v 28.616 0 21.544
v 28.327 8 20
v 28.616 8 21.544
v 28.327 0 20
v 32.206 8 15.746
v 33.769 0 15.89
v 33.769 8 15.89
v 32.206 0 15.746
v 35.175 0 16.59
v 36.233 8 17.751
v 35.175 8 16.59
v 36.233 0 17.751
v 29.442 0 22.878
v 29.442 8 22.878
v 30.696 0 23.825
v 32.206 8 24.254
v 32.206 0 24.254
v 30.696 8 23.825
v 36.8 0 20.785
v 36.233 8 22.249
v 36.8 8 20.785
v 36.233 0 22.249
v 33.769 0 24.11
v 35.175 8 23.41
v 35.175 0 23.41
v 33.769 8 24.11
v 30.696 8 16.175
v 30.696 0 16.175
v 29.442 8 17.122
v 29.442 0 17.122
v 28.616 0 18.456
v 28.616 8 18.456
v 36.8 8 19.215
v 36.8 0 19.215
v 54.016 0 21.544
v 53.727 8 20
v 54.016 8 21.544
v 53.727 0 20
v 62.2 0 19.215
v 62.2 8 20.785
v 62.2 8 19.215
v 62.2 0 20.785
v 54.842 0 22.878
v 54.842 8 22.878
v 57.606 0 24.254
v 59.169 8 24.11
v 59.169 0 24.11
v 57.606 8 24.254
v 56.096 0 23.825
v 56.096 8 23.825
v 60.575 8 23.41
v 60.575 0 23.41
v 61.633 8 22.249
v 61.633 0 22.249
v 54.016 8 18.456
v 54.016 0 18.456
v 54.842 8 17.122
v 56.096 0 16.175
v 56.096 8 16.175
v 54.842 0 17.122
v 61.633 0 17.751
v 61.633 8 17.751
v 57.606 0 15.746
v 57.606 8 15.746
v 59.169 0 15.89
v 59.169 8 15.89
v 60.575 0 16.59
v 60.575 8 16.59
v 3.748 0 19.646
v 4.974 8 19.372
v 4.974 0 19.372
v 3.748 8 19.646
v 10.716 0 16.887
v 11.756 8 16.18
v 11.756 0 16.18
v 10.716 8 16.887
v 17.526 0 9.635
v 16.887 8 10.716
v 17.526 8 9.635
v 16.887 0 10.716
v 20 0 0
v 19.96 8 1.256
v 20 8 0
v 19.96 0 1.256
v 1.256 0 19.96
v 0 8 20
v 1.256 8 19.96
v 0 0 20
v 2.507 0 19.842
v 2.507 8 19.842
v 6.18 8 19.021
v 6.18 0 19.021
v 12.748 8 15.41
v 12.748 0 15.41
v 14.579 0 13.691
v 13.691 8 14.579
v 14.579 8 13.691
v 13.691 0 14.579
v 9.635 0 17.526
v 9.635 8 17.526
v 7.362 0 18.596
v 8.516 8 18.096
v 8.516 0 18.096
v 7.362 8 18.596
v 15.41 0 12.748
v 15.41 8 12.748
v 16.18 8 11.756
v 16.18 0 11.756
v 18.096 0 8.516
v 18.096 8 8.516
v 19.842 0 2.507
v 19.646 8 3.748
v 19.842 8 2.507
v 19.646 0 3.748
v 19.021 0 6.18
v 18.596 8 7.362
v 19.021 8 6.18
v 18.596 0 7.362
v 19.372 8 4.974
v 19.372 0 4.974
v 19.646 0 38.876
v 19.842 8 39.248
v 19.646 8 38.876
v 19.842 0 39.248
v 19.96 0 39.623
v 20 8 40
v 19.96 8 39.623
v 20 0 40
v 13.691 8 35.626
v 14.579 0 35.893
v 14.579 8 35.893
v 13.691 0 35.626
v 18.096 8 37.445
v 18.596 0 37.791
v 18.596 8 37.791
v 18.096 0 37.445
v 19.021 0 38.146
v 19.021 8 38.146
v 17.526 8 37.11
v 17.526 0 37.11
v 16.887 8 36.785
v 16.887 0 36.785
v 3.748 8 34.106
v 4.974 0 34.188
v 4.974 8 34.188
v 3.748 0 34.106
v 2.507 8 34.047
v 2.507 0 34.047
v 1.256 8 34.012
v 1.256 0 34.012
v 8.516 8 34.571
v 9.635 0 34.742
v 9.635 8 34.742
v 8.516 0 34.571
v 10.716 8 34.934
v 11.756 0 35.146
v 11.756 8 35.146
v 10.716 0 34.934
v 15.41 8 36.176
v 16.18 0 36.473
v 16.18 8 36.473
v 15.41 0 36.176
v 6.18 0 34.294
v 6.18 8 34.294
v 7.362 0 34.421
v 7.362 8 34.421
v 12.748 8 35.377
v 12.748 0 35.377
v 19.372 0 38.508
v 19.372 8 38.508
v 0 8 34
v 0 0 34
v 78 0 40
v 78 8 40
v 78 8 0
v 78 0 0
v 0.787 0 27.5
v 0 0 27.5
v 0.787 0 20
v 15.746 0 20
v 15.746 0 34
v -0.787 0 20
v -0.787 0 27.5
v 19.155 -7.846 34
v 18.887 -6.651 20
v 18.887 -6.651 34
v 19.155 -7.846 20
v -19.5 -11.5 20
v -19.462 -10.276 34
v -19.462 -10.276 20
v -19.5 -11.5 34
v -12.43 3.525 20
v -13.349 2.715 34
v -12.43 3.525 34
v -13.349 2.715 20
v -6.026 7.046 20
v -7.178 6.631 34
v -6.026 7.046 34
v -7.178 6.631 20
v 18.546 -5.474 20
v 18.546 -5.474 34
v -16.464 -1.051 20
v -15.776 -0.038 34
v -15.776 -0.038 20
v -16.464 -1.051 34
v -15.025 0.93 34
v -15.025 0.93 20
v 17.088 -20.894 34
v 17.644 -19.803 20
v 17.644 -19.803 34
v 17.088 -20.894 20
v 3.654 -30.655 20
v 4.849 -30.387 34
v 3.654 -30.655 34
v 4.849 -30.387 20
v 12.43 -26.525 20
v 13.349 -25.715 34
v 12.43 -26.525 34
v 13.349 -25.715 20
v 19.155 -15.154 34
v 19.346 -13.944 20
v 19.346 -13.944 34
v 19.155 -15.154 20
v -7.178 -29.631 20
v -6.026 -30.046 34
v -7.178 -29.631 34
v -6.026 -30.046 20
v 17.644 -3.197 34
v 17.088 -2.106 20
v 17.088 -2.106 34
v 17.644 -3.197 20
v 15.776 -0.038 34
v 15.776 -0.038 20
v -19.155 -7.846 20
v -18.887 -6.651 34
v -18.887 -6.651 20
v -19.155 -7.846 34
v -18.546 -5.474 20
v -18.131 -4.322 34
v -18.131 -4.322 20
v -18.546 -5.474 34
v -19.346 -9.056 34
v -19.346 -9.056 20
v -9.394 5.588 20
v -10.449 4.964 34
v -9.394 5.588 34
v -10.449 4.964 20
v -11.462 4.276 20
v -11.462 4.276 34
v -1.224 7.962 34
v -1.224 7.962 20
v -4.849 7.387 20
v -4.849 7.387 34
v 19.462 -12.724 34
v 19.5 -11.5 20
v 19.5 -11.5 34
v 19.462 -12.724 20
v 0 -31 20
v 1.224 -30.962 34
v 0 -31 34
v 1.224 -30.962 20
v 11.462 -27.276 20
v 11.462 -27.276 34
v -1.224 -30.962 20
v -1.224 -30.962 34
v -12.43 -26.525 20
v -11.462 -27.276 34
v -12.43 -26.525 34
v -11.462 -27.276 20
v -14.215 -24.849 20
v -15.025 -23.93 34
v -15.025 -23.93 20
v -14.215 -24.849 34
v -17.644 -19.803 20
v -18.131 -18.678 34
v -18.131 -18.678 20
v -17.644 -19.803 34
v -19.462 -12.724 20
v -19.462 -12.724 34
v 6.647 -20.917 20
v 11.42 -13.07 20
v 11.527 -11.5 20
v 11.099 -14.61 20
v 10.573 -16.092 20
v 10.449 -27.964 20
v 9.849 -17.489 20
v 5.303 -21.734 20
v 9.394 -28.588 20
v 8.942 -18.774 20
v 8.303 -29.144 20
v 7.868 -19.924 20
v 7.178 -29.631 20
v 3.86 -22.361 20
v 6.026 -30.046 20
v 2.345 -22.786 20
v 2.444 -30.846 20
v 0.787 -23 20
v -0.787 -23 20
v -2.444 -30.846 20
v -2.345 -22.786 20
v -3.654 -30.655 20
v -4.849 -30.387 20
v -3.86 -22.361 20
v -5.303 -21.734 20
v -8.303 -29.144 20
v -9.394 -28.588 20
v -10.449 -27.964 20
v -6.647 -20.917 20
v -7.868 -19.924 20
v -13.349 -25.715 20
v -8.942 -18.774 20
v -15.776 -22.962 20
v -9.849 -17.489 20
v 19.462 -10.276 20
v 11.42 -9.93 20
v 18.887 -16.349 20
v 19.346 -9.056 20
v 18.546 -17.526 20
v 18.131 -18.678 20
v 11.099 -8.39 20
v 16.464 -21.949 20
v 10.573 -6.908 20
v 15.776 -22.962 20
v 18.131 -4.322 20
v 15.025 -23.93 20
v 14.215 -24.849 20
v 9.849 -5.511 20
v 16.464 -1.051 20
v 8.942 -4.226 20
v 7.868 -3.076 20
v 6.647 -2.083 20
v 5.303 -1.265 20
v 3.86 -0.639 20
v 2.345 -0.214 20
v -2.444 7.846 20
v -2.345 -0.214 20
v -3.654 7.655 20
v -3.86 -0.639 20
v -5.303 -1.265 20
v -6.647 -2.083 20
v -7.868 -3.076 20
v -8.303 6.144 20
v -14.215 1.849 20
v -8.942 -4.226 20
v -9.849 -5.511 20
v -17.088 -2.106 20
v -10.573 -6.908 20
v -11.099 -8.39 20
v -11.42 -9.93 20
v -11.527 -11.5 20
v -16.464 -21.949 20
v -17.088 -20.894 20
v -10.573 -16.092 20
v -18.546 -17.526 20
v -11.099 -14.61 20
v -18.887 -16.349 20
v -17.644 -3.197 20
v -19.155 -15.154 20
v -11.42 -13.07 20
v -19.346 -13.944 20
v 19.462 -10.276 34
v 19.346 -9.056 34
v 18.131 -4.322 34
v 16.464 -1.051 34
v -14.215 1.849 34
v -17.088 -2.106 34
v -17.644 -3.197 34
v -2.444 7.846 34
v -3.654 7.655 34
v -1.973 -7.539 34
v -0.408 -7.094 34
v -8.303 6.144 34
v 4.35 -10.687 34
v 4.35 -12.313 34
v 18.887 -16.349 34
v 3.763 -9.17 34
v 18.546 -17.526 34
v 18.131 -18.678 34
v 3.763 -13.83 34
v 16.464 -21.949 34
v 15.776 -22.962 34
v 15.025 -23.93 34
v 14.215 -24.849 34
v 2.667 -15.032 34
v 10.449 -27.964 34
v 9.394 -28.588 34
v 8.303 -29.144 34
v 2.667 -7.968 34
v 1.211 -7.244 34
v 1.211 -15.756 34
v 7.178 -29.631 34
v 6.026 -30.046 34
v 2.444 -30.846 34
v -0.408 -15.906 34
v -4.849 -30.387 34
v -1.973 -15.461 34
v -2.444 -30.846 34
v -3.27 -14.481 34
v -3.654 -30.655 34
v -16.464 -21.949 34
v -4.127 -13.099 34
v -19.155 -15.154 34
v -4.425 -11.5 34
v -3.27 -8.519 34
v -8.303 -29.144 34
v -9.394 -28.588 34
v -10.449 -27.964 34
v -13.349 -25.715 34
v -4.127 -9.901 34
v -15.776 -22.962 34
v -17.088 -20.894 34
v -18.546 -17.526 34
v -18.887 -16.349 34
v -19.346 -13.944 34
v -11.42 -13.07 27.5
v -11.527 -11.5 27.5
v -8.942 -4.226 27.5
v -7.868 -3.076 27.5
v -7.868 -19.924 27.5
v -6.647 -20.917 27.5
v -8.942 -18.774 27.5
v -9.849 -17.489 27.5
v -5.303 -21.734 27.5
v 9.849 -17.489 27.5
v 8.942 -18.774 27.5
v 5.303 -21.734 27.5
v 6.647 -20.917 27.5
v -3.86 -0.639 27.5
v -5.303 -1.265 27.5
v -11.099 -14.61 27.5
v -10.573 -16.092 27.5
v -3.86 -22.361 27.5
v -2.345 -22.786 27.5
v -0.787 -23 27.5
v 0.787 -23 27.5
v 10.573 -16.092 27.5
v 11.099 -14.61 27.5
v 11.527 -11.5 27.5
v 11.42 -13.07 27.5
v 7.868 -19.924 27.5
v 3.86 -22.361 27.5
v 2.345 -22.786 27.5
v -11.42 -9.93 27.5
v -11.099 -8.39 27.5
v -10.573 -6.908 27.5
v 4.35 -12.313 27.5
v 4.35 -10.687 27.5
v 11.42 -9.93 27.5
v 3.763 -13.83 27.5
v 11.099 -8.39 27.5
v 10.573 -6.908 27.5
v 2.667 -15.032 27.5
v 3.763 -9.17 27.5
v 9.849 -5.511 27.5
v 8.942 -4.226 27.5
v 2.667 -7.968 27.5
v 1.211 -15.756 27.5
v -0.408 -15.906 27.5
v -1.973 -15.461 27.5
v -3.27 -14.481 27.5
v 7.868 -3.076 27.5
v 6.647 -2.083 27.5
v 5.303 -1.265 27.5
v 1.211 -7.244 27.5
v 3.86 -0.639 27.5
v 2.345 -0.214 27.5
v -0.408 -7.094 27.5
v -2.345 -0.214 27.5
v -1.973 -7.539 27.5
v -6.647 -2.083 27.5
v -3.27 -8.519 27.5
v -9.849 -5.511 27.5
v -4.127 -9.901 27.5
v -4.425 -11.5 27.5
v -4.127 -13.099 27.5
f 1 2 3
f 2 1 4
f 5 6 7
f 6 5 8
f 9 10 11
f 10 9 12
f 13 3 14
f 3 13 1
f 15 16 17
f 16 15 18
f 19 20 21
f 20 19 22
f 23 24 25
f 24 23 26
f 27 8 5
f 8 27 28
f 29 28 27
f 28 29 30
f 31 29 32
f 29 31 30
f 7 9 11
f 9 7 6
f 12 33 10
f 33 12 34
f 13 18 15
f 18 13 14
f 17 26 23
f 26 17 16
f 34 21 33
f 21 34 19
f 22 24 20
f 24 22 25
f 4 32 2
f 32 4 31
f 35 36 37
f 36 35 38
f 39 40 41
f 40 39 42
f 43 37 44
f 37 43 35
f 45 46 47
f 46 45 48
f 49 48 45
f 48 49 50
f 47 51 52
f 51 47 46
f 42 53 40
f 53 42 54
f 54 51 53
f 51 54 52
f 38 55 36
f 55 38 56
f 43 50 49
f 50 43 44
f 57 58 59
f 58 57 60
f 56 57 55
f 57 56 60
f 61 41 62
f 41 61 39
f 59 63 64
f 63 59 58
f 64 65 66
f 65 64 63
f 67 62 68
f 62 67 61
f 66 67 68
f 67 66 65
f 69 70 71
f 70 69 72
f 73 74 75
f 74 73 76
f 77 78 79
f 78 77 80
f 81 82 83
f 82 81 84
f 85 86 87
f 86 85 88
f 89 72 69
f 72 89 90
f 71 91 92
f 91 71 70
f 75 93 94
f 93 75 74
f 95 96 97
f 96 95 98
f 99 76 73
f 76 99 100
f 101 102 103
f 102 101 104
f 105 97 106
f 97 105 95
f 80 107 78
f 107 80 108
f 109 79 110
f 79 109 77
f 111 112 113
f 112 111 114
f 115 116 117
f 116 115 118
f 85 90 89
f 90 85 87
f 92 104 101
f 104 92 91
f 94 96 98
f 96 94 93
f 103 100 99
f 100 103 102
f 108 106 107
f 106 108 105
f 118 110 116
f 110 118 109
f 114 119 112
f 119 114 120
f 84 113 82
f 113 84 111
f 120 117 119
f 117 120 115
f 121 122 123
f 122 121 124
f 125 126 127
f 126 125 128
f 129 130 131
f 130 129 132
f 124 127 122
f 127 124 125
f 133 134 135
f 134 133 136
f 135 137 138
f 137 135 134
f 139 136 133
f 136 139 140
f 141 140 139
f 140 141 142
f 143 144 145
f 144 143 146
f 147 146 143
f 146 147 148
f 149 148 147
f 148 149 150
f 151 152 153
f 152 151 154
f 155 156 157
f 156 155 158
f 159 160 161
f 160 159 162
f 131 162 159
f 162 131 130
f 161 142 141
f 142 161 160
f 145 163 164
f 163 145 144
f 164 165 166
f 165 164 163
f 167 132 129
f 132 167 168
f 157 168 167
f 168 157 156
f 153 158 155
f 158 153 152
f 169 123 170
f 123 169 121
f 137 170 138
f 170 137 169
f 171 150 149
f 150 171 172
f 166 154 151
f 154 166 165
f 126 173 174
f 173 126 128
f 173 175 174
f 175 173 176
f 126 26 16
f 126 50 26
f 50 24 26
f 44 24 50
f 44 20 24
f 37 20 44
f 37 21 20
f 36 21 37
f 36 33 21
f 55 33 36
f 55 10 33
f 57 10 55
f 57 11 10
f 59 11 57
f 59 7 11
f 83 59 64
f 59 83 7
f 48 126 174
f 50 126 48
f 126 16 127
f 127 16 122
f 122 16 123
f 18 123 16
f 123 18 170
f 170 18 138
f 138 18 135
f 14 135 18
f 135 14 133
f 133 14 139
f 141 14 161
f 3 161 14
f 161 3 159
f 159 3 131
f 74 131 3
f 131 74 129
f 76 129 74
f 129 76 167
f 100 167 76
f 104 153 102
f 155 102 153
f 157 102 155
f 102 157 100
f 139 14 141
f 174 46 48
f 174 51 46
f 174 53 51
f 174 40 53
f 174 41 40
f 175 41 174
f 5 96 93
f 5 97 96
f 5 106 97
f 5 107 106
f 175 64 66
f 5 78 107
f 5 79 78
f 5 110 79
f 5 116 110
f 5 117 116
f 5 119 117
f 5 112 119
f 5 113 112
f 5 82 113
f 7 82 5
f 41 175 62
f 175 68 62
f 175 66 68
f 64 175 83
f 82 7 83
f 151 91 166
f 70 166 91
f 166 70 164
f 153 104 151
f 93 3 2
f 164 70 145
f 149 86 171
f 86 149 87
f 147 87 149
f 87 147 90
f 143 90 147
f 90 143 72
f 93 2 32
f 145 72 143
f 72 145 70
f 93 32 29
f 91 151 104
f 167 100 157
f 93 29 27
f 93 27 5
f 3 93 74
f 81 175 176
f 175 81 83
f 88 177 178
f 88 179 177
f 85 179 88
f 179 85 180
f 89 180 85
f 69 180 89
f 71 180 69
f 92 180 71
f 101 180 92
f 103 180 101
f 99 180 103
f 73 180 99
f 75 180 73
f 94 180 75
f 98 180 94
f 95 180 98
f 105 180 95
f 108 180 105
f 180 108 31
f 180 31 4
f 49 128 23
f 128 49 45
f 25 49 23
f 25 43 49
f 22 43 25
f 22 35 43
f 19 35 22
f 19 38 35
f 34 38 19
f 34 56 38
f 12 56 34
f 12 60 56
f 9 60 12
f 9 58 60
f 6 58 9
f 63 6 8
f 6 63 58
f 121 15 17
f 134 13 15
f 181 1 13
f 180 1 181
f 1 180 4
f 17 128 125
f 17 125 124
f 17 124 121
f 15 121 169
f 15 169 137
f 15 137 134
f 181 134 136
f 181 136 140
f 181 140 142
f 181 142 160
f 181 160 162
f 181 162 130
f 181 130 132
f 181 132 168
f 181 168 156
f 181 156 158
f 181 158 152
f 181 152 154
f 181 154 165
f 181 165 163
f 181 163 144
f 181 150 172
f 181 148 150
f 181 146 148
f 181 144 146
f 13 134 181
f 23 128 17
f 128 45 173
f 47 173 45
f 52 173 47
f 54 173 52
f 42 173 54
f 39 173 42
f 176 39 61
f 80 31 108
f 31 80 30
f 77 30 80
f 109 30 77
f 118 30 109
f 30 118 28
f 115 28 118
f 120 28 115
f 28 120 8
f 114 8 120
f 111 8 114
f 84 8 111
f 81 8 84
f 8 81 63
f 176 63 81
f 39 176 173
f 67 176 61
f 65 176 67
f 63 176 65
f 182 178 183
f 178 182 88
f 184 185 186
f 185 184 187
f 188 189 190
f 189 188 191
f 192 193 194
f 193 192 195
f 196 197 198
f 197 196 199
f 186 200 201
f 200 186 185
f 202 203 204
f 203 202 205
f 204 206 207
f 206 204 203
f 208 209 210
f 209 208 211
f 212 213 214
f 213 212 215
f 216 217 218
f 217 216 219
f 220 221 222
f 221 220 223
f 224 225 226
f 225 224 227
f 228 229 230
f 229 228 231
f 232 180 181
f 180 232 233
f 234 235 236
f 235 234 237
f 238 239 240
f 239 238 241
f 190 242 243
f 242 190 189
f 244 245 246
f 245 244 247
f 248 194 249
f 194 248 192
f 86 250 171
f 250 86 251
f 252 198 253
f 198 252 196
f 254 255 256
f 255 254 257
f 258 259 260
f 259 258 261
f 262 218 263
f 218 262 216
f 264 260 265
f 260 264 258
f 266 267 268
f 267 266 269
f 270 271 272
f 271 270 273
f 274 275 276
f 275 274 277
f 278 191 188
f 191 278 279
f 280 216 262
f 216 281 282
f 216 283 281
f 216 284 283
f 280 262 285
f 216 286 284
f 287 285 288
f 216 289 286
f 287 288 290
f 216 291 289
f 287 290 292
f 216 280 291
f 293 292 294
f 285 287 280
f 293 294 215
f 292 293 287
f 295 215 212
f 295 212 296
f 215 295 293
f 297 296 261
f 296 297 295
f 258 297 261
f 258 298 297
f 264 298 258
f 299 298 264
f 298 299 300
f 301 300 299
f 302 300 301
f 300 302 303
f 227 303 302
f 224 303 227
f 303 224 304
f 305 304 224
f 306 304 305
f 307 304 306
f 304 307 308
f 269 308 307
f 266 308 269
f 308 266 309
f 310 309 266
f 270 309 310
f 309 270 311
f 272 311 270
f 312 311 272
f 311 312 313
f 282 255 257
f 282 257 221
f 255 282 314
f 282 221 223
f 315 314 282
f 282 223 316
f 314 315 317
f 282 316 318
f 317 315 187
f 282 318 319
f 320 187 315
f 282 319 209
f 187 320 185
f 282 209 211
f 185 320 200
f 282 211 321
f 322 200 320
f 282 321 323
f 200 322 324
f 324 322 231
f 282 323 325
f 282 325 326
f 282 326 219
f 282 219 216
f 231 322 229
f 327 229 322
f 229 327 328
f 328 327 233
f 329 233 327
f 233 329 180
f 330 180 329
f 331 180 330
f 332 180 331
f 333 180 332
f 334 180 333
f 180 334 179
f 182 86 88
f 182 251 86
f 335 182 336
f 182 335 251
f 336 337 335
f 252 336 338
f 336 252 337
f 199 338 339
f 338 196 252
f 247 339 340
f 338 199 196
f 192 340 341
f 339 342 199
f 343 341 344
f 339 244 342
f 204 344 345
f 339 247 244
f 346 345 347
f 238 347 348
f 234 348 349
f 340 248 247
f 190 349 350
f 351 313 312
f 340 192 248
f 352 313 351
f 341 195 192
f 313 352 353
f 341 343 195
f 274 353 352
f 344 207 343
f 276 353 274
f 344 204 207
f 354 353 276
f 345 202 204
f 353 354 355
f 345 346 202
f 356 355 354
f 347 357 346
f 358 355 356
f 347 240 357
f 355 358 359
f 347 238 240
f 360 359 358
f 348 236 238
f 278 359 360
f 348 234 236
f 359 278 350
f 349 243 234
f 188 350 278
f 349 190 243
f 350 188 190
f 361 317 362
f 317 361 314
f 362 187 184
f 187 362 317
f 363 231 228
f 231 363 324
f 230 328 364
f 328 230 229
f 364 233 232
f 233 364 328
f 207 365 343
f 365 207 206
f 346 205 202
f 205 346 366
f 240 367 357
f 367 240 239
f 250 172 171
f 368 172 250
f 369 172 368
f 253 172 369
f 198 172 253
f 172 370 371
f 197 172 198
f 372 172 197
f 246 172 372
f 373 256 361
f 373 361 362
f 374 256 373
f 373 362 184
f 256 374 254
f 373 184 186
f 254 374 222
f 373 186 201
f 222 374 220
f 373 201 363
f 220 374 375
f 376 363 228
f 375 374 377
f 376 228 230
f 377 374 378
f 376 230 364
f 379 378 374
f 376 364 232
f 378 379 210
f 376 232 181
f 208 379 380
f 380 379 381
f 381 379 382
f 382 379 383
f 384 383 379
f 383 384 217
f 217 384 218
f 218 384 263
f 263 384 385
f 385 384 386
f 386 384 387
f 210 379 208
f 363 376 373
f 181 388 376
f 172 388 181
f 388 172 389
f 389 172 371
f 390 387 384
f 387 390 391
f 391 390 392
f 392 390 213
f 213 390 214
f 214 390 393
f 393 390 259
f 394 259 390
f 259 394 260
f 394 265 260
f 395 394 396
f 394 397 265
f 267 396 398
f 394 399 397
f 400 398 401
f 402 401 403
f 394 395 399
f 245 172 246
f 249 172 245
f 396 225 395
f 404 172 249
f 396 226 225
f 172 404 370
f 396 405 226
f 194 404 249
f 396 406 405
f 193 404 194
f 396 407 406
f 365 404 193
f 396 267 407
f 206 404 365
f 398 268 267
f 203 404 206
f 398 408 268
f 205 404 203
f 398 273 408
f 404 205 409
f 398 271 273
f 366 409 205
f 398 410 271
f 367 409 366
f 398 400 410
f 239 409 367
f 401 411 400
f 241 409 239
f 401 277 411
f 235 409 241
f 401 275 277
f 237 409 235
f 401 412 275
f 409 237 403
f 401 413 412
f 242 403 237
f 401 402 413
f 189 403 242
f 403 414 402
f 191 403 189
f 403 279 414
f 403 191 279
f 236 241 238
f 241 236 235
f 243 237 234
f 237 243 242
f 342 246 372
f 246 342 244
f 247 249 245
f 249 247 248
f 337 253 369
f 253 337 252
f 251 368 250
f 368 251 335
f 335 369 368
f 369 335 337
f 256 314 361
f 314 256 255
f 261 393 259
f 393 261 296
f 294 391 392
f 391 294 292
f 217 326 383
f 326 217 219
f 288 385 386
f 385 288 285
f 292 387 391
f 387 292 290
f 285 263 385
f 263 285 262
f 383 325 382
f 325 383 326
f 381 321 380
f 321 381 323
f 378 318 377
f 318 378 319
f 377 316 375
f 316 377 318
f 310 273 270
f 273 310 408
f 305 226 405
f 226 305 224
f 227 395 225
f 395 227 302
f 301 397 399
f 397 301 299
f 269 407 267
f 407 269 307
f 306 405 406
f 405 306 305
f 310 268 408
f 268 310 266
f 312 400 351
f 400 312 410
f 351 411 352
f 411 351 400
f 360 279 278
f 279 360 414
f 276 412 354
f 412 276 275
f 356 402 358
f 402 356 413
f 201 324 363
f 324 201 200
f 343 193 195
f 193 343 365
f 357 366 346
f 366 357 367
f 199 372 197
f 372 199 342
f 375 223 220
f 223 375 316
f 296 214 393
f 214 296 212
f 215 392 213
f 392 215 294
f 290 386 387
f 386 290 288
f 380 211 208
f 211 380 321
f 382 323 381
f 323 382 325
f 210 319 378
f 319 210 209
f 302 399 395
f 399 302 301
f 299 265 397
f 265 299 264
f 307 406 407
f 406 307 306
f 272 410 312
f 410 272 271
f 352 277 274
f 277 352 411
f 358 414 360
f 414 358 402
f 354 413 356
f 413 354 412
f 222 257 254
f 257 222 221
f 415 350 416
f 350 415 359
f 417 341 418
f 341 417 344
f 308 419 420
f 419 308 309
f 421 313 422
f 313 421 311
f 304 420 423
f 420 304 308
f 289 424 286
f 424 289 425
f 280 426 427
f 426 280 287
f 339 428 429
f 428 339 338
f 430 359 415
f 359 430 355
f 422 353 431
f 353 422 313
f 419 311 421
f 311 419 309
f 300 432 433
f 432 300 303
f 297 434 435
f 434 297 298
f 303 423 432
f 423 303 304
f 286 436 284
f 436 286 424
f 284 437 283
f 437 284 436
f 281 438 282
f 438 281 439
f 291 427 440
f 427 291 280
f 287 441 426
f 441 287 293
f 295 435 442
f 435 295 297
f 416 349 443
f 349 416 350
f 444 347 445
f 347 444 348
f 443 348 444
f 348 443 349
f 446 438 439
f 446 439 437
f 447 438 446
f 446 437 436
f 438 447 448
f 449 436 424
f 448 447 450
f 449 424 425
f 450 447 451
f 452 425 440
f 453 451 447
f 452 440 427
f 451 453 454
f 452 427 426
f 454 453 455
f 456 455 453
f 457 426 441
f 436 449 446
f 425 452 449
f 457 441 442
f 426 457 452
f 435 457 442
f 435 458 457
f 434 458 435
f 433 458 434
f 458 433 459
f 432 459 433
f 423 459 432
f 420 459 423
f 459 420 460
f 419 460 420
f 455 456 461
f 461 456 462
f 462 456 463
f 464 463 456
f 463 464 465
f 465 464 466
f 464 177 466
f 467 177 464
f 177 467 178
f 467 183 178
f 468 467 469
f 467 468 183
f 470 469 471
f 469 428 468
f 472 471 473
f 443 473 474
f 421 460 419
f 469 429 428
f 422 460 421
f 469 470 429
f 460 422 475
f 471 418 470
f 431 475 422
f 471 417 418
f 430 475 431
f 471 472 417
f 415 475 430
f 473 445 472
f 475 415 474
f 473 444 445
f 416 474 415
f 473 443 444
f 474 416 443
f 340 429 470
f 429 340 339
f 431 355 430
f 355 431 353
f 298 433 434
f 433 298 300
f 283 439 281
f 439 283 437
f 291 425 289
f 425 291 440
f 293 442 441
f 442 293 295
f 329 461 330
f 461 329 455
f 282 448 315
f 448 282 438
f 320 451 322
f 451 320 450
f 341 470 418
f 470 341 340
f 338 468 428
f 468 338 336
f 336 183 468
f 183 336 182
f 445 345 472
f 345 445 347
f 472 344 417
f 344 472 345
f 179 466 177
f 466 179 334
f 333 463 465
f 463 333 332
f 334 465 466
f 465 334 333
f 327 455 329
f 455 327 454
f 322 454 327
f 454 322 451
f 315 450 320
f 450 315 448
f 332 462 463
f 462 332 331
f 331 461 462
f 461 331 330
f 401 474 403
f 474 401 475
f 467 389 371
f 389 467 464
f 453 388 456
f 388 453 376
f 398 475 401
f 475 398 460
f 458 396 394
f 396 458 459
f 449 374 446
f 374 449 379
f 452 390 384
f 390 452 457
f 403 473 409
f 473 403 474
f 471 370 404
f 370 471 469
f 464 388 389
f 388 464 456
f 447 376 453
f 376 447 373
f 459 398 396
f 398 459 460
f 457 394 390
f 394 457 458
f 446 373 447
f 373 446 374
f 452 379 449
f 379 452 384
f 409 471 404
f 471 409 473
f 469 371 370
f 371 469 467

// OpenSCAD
use <MCAD/polyholes.scad>;



$fn = 100;

thick = 8;

extrusion_w = 40.0; //mm
extrusion_h = 40.0; //mm

frame_mount_bolt_r  =  4.2;    //mm
frame_mount_pitch   = 25.4;    //mm

bearing_o_d   =         22.0;    //mm
bearing_i_d   =          8.0;    //mm
bearing_h     =          7.0;    //mm
bearing_o_tol =          1.0;    //mm

bearing_mount_r = ((bearing_o_d + bearing_o_tol) / 2.0) + thick;

pulley_o_d  = 18.0;  //mm
pulley_i_d  =  8.0;  //mm
pulley_h    = 18.0;  //mm
pulley_t_d  = 12.0;  //mm

ballscrew_length       = 500.0;    //mm
ballscrew_upper_spigot =  20.0;    //mm
ballscrew_lower_spigot =  40.0;    //mm

mount_length = bearing_o_d + (thick * 2.0) + 40.0;
mount_height = extrusion_h;

echo (mount_length);

union() {
    difference() {
        
        cube([mount_length, thick, mount_height]);
        translate([mount_length - 20.0 - frame_mount_pitch, -1.0, extrusion_h / 2.0]) rotate([-90, 0 ,0]) {
            polyhole(d = frame_mount_bolt_r * 2.0, h = thick + 2.0);
            translate([frame_mount_pitch, 0 , 0]) polyhole(d = frame_mount_bolt_r * 2.0, h = thick + 2.0);
        }
        rotate([-90, 0, 0]) union() {
            translate([0, 0, -1.0]) cylinder(r=20, h = thick + 2.0);
            translate([0, -mount_height, -1.0]) scale([1.0, (mount_height - (20.0 + bearing_h * 2.0)) / 20.0, 1.0]) cylinder(r=20, h = thick + 2.0);
        }
    }
    
    translate ([0, -bearing_mount_r + thick, ballscrew_upper_spigot]) difference () {
        cylinder(r = bearing_mount_r, h = bearing_h * 2.0);
        translate ([0, 0, -1.0]) polyhole(d = bearing_o_d + bearing_o_tol, h = bearing_h + 1.5);
        translate ([0, 0, bearing_h - 0.5]) polyhole(d = bearing_i_d + 0.7, h = bearing_h + 1.5);
    }
}
